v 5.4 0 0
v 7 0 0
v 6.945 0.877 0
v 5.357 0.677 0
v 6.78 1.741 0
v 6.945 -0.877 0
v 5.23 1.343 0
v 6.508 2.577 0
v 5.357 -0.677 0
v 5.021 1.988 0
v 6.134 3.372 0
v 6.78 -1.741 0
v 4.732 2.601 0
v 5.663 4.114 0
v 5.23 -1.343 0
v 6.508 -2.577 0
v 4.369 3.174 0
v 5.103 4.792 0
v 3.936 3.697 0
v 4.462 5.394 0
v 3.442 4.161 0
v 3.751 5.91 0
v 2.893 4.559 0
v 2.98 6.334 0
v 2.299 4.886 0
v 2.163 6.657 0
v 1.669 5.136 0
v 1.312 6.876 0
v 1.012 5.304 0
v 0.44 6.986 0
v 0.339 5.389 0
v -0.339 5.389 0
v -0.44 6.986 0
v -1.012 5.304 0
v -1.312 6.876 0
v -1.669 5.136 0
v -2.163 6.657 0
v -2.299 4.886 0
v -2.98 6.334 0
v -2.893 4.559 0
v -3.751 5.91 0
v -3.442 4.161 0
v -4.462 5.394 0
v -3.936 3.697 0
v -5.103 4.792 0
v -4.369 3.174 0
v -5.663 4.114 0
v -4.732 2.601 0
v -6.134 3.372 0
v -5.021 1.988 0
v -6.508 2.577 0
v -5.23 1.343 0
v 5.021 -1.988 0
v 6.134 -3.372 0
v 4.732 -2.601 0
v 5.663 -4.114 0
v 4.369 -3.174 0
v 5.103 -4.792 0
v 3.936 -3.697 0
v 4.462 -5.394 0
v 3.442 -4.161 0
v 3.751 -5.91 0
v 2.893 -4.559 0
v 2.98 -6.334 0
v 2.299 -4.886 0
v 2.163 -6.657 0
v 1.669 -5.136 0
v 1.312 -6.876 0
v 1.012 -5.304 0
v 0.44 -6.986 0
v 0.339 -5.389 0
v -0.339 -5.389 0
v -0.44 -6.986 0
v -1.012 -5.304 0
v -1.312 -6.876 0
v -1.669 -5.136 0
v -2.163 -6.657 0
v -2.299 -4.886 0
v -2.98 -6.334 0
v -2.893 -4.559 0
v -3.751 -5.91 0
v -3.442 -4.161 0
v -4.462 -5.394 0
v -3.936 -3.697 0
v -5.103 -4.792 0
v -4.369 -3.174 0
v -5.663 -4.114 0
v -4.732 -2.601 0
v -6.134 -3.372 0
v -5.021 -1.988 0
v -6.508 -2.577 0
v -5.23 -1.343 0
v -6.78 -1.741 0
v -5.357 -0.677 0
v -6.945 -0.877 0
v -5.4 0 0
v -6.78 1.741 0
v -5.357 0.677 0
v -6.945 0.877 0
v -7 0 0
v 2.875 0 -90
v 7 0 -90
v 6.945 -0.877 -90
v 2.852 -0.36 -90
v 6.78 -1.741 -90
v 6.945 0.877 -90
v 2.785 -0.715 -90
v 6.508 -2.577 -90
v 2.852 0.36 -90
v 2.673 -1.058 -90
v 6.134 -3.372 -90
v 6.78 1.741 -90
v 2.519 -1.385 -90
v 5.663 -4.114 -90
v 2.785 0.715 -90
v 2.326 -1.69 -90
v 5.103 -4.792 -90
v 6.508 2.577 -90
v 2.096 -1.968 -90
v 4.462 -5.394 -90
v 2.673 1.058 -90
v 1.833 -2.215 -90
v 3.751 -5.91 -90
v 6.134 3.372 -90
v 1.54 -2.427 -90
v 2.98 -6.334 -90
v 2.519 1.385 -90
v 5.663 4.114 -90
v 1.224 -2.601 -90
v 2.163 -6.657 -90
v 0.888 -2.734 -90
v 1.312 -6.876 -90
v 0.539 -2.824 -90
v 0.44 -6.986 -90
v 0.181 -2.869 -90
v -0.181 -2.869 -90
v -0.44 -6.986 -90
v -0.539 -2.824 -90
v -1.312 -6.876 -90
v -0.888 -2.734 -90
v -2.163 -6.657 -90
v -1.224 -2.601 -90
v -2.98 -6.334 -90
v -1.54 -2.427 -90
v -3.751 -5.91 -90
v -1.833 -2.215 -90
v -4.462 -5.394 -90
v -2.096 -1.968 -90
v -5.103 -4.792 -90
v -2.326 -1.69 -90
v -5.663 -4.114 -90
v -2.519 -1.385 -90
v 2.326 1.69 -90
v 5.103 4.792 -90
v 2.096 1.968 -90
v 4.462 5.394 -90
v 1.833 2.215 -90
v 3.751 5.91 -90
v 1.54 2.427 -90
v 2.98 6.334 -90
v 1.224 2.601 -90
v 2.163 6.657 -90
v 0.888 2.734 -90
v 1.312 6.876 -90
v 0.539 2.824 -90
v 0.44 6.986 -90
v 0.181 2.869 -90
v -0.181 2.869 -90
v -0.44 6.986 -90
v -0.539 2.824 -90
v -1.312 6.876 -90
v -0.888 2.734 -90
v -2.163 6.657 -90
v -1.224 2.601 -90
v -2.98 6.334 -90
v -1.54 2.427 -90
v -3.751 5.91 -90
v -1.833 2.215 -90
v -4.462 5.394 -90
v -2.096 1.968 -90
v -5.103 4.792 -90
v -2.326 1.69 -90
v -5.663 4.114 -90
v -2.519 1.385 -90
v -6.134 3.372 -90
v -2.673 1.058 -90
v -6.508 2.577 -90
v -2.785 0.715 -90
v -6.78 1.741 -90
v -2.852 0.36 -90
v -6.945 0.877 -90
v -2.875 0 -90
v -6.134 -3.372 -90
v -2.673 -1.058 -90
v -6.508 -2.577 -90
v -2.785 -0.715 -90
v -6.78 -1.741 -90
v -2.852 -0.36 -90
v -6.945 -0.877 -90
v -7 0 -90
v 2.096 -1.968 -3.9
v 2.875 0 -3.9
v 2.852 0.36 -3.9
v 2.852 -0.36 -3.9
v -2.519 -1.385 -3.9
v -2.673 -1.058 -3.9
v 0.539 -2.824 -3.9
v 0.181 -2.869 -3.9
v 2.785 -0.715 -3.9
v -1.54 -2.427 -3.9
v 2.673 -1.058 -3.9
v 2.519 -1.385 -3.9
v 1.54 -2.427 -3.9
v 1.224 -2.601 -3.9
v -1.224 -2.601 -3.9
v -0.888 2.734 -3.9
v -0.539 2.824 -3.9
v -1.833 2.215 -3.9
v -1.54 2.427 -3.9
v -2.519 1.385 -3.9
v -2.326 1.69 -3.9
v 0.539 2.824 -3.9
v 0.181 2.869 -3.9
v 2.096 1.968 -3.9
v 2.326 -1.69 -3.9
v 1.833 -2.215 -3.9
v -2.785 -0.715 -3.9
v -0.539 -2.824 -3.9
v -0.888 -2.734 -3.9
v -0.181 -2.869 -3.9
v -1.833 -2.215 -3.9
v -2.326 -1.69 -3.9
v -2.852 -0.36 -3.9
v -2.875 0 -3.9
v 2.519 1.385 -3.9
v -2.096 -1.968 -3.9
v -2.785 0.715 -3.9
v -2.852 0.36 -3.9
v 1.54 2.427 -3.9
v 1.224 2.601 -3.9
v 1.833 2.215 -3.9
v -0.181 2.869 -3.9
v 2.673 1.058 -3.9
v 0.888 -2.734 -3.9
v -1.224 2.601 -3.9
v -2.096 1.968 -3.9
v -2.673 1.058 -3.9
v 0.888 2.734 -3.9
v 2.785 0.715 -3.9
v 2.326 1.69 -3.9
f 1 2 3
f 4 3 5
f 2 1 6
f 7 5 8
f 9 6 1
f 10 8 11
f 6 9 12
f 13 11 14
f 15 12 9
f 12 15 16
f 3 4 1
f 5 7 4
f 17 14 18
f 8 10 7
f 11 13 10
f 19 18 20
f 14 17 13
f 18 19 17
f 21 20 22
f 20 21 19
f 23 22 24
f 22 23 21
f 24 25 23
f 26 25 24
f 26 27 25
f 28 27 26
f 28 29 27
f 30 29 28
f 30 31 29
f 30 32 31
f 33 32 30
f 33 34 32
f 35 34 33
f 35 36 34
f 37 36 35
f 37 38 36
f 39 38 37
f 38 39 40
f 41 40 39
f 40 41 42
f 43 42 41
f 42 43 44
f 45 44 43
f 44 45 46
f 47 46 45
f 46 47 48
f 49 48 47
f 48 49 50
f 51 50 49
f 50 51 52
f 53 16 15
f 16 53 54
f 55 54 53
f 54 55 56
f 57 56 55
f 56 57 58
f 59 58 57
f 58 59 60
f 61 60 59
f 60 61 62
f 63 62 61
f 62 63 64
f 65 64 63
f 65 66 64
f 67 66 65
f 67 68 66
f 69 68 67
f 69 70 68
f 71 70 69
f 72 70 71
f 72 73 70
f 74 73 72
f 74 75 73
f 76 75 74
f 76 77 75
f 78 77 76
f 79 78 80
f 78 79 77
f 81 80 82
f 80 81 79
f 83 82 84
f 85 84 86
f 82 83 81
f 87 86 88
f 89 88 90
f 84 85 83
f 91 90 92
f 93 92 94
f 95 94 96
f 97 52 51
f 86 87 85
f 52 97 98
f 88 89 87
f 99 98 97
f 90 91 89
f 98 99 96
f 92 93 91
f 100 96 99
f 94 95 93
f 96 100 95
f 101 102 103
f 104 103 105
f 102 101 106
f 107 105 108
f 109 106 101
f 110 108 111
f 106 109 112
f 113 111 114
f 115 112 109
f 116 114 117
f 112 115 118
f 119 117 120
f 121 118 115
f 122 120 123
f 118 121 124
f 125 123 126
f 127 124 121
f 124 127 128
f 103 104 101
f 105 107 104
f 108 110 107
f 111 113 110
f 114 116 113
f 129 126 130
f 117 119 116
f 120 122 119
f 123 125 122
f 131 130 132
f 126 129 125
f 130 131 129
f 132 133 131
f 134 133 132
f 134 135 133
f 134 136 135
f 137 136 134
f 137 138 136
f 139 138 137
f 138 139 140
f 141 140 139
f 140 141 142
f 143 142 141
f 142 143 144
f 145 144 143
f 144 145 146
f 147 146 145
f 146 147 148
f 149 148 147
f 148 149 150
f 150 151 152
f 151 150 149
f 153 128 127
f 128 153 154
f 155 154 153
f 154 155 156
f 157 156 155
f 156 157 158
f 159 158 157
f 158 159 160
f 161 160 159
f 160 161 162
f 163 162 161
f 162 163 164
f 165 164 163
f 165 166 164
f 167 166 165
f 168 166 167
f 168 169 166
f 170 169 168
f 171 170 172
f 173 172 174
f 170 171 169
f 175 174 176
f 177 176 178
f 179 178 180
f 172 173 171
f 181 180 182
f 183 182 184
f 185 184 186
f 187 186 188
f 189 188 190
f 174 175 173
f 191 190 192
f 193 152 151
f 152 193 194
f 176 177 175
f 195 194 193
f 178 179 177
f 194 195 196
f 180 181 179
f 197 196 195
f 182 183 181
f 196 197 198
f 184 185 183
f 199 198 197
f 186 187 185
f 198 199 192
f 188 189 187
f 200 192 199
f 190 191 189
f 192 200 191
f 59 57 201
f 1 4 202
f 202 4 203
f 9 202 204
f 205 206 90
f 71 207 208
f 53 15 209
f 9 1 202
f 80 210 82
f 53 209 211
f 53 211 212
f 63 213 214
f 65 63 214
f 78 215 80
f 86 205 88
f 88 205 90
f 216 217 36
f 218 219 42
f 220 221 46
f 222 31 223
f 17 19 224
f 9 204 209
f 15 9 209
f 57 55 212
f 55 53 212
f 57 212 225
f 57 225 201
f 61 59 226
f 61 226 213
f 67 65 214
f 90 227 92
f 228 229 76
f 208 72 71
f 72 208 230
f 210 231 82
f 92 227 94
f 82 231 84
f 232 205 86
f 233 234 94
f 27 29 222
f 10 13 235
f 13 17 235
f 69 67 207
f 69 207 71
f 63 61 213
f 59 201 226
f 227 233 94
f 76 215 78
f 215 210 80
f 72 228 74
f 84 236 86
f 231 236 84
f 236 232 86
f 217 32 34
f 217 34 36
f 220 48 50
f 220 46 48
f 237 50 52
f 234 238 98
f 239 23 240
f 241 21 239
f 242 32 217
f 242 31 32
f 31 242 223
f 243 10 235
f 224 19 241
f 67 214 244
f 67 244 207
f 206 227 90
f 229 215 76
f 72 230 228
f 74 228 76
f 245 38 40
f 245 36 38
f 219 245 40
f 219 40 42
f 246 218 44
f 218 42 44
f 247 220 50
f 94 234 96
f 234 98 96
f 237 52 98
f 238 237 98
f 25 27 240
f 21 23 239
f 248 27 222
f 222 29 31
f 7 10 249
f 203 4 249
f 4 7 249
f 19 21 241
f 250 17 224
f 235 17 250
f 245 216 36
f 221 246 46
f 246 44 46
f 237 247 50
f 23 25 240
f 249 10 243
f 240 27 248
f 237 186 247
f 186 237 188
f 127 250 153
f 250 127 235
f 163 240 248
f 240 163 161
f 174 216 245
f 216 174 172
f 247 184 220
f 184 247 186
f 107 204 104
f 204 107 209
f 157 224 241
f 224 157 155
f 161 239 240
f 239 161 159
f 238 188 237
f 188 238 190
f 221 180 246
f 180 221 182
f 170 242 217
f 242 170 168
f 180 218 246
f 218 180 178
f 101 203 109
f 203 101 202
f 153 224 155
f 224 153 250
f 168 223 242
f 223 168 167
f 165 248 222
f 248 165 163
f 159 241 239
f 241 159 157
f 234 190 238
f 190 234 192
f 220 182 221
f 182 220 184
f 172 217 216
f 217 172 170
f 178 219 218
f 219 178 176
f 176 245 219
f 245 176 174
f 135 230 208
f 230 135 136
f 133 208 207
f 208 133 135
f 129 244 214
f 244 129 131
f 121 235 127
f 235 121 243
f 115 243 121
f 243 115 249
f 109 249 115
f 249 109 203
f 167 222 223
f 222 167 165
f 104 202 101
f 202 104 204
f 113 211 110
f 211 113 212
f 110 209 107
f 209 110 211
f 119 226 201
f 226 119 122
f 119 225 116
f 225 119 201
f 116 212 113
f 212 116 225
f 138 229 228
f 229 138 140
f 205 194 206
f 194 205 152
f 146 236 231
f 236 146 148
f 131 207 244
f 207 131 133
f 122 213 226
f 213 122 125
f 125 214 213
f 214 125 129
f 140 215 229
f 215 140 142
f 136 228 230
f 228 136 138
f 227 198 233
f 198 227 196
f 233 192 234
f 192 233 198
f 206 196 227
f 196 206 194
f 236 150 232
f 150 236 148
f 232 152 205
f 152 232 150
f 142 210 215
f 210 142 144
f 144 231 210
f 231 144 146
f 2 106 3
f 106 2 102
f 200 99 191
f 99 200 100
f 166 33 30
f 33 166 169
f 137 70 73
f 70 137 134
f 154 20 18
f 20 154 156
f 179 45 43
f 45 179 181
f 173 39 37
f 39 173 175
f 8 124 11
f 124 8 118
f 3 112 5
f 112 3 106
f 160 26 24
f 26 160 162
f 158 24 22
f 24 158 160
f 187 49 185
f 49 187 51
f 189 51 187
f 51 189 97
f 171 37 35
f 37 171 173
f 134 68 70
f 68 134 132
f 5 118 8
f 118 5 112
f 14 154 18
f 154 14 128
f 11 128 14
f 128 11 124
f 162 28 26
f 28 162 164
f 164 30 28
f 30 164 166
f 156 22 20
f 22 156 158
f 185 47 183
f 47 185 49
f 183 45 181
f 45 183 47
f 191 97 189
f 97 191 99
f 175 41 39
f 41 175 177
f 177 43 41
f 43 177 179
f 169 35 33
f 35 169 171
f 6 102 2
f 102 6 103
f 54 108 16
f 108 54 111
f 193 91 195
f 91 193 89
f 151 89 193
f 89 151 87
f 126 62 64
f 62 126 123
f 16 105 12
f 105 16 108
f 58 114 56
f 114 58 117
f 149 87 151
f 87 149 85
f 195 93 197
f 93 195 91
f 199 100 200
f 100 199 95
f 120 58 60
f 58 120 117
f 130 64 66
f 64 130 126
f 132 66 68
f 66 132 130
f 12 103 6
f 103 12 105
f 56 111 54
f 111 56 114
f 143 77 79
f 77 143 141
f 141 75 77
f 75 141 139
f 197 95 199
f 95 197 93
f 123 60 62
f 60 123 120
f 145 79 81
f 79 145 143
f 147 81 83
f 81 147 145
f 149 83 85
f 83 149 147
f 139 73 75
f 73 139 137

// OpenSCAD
$fn = 50;


difference() {
	union() {
		translate(v = [0, 0, -90.0000000000]) {
			cylinder(h = 90, r = 7.0000000000);
		}
		cylinder(h = 0, r = 17.0000000000);
	}
	union() {
		translate(v = [0, 0, 0]) {
			rotate(a = [0, 0, 0]) {
				difference() {
					union() {
						#translate(v = [0, 0, -90.0000000000]) {
							cylinder(h = 90, r = 2.6000000000);
						}
						#translate(v = [0, 0, -3.9000000000]) {
							cylinder(h = 3.9000000000, r1 = 2.8750000000, r2 = 5.4000000000);
						}
						#translate(v = [0, 0, -90.0000000000]) {
							cylinder(h = 90, r = 2.8750000000);
						}
						#translate(v = [0, 0, -90.0000000000]) {
							cylinder(h = 90, r = 2.6000000000);
						}
					}
					union();
				}
			}
		}
	}
}
